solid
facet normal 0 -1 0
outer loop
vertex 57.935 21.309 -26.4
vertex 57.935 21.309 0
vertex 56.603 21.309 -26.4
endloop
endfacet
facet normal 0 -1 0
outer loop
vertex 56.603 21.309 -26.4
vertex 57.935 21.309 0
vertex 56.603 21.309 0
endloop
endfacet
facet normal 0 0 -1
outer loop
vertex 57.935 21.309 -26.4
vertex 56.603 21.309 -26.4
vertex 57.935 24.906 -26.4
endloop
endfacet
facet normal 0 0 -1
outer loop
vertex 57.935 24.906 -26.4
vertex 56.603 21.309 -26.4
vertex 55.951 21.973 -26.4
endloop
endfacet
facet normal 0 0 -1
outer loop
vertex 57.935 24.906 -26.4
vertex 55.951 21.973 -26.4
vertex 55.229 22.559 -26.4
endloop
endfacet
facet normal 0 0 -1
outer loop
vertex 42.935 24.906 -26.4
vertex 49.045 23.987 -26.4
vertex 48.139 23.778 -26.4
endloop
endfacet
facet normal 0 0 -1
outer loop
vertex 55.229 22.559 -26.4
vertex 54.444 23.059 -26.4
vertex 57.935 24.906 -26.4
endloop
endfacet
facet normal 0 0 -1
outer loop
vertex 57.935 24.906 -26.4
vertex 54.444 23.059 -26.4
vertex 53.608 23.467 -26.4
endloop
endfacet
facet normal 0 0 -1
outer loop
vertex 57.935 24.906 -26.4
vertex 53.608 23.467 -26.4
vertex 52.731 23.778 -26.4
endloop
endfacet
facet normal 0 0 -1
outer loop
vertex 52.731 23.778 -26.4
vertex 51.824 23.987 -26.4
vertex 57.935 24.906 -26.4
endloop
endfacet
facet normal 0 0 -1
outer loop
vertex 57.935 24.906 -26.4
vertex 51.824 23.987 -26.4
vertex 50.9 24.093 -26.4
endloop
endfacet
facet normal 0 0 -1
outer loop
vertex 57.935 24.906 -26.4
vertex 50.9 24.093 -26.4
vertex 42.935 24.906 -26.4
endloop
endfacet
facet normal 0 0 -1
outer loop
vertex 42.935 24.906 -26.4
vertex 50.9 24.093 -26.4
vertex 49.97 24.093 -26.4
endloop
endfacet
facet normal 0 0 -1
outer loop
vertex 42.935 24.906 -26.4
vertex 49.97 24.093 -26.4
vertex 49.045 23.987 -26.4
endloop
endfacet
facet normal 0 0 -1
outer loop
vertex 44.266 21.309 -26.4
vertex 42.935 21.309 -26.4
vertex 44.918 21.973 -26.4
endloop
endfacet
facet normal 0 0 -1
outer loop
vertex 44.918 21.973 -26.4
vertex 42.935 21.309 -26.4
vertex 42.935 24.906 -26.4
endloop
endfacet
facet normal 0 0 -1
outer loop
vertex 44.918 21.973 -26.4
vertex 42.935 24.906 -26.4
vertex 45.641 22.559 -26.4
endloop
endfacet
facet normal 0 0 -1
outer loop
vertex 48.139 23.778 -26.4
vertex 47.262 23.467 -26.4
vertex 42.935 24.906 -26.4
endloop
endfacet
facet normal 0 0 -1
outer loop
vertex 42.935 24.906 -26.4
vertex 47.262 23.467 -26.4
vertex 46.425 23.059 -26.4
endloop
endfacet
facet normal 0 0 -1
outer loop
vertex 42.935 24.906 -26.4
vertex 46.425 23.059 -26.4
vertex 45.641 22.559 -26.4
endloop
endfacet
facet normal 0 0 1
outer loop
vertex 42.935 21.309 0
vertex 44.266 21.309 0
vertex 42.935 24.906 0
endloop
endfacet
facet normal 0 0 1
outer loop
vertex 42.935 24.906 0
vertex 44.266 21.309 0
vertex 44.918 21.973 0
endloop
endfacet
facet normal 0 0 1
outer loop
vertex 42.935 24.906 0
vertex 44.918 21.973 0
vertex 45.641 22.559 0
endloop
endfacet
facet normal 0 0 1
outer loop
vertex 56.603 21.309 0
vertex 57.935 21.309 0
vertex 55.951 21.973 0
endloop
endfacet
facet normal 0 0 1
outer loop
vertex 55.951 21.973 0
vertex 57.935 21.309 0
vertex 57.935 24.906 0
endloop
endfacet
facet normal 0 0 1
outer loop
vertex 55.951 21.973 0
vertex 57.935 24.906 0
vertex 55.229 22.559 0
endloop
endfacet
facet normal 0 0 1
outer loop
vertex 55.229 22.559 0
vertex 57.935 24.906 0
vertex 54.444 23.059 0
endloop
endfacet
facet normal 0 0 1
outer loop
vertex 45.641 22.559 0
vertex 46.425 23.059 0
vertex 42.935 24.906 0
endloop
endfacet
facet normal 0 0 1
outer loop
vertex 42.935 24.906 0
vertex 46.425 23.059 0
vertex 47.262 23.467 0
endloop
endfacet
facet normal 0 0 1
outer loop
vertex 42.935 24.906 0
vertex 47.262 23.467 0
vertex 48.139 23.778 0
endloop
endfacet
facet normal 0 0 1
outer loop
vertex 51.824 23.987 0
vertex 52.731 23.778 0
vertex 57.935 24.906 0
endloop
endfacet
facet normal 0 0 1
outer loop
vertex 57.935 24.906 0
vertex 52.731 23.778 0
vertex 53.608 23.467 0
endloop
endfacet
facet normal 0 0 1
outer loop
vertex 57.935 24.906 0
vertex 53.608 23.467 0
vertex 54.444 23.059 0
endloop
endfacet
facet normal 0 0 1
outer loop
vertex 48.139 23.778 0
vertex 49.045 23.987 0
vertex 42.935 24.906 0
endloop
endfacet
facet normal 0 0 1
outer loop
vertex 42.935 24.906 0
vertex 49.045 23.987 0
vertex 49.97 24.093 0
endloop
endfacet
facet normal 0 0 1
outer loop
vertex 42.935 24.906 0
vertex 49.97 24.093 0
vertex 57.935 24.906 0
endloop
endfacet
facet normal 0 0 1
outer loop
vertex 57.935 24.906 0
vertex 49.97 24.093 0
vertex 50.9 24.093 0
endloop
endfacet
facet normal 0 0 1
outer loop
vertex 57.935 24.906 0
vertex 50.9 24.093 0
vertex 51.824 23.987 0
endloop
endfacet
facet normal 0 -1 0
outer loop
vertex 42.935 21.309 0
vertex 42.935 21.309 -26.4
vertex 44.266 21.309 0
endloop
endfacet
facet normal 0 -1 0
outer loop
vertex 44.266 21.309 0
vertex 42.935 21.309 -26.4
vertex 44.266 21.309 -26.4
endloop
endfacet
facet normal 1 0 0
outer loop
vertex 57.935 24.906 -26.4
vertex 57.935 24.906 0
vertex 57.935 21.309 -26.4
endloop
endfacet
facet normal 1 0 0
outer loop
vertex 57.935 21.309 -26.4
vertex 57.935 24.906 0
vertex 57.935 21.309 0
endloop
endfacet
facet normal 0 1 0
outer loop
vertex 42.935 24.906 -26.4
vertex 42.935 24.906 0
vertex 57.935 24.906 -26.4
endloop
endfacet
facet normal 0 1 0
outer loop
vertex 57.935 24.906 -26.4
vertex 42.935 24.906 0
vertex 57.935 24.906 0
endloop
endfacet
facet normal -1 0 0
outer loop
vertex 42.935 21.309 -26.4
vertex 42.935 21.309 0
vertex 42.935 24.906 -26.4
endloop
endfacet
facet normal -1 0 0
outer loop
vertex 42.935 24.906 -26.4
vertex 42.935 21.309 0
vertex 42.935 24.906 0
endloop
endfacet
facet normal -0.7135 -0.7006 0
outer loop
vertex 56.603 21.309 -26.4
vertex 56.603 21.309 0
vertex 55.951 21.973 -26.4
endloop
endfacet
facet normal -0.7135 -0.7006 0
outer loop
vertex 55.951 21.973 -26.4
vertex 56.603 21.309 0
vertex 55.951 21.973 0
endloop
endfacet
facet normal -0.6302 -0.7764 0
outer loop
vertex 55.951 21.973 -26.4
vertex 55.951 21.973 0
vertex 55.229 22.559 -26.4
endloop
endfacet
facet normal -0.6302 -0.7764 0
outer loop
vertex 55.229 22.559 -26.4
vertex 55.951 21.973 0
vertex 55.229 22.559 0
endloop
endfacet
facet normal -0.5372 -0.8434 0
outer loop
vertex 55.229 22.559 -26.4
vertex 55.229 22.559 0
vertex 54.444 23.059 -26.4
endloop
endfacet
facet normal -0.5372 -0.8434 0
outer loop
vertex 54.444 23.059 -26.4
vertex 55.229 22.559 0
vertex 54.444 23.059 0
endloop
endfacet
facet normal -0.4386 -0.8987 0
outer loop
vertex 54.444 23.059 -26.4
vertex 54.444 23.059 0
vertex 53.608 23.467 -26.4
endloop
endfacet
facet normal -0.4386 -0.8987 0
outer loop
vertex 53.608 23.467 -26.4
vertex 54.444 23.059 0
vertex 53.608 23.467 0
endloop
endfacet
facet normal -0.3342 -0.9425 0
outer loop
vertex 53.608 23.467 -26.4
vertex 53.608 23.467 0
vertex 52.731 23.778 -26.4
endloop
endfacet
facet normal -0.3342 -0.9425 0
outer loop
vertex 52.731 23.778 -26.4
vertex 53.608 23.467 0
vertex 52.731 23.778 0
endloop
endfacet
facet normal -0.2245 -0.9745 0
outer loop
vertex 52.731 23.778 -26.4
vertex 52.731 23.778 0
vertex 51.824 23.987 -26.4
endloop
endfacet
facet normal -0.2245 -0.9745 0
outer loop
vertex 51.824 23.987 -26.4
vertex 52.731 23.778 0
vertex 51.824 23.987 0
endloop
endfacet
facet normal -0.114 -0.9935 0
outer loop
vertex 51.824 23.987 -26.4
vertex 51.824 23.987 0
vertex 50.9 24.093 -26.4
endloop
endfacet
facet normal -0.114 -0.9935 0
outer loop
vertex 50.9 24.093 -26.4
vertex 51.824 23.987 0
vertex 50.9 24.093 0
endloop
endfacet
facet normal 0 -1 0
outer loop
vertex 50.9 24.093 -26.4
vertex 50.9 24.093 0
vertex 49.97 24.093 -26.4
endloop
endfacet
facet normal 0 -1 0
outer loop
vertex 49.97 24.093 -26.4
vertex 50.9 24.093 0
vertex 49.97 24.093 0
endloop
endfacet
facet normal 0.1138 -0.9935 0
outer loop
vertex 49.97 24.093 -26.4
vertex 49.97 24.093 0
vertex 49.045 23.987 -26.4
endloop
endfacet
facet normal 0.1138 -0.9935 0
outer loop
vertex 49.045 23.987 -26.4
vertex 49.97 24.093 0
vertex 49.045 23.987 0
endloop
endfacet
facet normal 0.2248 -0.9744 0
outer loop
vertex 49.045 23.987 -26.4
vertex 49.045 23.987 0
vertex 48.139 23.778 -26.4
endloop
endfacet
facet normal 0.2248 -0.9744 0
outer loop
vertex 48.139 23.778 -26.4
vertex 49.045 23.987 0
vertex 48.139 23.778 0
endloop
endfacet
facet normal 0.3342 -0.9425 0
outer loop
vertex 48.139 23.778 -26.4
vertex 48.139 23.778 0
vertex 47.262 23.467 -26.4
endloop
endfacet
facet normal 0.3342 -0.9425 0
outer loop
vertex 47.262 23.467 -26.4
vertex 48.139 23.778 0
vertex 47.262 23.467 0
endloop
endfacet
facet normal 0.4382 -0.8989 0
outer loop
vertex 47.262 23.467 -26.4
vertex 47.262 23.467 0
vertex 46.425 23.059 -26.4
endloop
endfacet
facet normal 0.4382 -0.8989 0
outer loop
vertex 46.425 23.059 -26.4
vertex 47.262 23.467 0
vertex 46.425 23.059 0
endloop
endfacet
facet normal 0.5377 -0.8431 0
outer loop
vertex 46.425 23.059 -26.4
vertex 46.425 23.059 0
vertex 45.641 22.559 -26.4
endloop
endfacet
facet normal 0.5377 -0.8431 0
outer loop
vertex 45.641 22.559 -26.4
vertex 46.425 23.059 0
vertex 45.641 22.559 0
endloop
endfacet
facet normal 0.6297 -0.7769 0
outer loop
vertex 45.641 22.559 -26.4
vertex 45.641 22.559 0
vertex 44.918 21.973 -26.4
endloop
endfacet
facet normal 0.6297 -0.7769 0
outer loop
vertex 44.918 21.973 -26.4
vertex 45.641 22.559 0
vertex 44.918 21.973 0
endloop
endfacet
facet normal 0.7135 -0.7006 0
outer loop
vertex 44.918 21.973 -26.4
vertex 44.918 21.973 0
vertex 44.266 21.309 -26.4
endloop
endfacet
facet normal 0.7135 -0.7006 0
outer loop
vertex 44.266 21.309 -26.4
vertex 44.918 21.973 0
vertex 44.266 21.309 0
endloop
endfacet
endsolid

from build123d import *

# Parameters (mm, degrees)
SKETCH2_W           = 15
SKETCH2_H           = 3.597222937
BOSS_EXTRUDE1_DEPTH = 26.4
CUT_EXTRUDE1_DEPTH  = 26.4


with BuildPart() as part:
    # Sketch2 → Boss-Extrude1 (new body)
    with BuildSketch(Plane.XY):
        with Locations((50.434775134, 23.107461061)):
            Rectangle(SKETCH2_W, SKETCH2_H)
    extrude(amount=-BOSS_EXTRUDE1_DEPTH)

    # Sketch3 → Cut-Extrude1 (cut)
    with BuildSketch(Plane.XY):
        with BuildLine():
            Line((44.266306929, 21.308849592), (56.603243339, 21.308849592))
            ThreePointArc((56.603243339, 21.308849592), (50.434775134, 24.106072529), (44.266306929, 21.308849592))
        make_face()
    extrude(amount=-CUT_EXTRUDE1_DEPTH, mode=Mode.SUBTRACT)


solid = part.part
